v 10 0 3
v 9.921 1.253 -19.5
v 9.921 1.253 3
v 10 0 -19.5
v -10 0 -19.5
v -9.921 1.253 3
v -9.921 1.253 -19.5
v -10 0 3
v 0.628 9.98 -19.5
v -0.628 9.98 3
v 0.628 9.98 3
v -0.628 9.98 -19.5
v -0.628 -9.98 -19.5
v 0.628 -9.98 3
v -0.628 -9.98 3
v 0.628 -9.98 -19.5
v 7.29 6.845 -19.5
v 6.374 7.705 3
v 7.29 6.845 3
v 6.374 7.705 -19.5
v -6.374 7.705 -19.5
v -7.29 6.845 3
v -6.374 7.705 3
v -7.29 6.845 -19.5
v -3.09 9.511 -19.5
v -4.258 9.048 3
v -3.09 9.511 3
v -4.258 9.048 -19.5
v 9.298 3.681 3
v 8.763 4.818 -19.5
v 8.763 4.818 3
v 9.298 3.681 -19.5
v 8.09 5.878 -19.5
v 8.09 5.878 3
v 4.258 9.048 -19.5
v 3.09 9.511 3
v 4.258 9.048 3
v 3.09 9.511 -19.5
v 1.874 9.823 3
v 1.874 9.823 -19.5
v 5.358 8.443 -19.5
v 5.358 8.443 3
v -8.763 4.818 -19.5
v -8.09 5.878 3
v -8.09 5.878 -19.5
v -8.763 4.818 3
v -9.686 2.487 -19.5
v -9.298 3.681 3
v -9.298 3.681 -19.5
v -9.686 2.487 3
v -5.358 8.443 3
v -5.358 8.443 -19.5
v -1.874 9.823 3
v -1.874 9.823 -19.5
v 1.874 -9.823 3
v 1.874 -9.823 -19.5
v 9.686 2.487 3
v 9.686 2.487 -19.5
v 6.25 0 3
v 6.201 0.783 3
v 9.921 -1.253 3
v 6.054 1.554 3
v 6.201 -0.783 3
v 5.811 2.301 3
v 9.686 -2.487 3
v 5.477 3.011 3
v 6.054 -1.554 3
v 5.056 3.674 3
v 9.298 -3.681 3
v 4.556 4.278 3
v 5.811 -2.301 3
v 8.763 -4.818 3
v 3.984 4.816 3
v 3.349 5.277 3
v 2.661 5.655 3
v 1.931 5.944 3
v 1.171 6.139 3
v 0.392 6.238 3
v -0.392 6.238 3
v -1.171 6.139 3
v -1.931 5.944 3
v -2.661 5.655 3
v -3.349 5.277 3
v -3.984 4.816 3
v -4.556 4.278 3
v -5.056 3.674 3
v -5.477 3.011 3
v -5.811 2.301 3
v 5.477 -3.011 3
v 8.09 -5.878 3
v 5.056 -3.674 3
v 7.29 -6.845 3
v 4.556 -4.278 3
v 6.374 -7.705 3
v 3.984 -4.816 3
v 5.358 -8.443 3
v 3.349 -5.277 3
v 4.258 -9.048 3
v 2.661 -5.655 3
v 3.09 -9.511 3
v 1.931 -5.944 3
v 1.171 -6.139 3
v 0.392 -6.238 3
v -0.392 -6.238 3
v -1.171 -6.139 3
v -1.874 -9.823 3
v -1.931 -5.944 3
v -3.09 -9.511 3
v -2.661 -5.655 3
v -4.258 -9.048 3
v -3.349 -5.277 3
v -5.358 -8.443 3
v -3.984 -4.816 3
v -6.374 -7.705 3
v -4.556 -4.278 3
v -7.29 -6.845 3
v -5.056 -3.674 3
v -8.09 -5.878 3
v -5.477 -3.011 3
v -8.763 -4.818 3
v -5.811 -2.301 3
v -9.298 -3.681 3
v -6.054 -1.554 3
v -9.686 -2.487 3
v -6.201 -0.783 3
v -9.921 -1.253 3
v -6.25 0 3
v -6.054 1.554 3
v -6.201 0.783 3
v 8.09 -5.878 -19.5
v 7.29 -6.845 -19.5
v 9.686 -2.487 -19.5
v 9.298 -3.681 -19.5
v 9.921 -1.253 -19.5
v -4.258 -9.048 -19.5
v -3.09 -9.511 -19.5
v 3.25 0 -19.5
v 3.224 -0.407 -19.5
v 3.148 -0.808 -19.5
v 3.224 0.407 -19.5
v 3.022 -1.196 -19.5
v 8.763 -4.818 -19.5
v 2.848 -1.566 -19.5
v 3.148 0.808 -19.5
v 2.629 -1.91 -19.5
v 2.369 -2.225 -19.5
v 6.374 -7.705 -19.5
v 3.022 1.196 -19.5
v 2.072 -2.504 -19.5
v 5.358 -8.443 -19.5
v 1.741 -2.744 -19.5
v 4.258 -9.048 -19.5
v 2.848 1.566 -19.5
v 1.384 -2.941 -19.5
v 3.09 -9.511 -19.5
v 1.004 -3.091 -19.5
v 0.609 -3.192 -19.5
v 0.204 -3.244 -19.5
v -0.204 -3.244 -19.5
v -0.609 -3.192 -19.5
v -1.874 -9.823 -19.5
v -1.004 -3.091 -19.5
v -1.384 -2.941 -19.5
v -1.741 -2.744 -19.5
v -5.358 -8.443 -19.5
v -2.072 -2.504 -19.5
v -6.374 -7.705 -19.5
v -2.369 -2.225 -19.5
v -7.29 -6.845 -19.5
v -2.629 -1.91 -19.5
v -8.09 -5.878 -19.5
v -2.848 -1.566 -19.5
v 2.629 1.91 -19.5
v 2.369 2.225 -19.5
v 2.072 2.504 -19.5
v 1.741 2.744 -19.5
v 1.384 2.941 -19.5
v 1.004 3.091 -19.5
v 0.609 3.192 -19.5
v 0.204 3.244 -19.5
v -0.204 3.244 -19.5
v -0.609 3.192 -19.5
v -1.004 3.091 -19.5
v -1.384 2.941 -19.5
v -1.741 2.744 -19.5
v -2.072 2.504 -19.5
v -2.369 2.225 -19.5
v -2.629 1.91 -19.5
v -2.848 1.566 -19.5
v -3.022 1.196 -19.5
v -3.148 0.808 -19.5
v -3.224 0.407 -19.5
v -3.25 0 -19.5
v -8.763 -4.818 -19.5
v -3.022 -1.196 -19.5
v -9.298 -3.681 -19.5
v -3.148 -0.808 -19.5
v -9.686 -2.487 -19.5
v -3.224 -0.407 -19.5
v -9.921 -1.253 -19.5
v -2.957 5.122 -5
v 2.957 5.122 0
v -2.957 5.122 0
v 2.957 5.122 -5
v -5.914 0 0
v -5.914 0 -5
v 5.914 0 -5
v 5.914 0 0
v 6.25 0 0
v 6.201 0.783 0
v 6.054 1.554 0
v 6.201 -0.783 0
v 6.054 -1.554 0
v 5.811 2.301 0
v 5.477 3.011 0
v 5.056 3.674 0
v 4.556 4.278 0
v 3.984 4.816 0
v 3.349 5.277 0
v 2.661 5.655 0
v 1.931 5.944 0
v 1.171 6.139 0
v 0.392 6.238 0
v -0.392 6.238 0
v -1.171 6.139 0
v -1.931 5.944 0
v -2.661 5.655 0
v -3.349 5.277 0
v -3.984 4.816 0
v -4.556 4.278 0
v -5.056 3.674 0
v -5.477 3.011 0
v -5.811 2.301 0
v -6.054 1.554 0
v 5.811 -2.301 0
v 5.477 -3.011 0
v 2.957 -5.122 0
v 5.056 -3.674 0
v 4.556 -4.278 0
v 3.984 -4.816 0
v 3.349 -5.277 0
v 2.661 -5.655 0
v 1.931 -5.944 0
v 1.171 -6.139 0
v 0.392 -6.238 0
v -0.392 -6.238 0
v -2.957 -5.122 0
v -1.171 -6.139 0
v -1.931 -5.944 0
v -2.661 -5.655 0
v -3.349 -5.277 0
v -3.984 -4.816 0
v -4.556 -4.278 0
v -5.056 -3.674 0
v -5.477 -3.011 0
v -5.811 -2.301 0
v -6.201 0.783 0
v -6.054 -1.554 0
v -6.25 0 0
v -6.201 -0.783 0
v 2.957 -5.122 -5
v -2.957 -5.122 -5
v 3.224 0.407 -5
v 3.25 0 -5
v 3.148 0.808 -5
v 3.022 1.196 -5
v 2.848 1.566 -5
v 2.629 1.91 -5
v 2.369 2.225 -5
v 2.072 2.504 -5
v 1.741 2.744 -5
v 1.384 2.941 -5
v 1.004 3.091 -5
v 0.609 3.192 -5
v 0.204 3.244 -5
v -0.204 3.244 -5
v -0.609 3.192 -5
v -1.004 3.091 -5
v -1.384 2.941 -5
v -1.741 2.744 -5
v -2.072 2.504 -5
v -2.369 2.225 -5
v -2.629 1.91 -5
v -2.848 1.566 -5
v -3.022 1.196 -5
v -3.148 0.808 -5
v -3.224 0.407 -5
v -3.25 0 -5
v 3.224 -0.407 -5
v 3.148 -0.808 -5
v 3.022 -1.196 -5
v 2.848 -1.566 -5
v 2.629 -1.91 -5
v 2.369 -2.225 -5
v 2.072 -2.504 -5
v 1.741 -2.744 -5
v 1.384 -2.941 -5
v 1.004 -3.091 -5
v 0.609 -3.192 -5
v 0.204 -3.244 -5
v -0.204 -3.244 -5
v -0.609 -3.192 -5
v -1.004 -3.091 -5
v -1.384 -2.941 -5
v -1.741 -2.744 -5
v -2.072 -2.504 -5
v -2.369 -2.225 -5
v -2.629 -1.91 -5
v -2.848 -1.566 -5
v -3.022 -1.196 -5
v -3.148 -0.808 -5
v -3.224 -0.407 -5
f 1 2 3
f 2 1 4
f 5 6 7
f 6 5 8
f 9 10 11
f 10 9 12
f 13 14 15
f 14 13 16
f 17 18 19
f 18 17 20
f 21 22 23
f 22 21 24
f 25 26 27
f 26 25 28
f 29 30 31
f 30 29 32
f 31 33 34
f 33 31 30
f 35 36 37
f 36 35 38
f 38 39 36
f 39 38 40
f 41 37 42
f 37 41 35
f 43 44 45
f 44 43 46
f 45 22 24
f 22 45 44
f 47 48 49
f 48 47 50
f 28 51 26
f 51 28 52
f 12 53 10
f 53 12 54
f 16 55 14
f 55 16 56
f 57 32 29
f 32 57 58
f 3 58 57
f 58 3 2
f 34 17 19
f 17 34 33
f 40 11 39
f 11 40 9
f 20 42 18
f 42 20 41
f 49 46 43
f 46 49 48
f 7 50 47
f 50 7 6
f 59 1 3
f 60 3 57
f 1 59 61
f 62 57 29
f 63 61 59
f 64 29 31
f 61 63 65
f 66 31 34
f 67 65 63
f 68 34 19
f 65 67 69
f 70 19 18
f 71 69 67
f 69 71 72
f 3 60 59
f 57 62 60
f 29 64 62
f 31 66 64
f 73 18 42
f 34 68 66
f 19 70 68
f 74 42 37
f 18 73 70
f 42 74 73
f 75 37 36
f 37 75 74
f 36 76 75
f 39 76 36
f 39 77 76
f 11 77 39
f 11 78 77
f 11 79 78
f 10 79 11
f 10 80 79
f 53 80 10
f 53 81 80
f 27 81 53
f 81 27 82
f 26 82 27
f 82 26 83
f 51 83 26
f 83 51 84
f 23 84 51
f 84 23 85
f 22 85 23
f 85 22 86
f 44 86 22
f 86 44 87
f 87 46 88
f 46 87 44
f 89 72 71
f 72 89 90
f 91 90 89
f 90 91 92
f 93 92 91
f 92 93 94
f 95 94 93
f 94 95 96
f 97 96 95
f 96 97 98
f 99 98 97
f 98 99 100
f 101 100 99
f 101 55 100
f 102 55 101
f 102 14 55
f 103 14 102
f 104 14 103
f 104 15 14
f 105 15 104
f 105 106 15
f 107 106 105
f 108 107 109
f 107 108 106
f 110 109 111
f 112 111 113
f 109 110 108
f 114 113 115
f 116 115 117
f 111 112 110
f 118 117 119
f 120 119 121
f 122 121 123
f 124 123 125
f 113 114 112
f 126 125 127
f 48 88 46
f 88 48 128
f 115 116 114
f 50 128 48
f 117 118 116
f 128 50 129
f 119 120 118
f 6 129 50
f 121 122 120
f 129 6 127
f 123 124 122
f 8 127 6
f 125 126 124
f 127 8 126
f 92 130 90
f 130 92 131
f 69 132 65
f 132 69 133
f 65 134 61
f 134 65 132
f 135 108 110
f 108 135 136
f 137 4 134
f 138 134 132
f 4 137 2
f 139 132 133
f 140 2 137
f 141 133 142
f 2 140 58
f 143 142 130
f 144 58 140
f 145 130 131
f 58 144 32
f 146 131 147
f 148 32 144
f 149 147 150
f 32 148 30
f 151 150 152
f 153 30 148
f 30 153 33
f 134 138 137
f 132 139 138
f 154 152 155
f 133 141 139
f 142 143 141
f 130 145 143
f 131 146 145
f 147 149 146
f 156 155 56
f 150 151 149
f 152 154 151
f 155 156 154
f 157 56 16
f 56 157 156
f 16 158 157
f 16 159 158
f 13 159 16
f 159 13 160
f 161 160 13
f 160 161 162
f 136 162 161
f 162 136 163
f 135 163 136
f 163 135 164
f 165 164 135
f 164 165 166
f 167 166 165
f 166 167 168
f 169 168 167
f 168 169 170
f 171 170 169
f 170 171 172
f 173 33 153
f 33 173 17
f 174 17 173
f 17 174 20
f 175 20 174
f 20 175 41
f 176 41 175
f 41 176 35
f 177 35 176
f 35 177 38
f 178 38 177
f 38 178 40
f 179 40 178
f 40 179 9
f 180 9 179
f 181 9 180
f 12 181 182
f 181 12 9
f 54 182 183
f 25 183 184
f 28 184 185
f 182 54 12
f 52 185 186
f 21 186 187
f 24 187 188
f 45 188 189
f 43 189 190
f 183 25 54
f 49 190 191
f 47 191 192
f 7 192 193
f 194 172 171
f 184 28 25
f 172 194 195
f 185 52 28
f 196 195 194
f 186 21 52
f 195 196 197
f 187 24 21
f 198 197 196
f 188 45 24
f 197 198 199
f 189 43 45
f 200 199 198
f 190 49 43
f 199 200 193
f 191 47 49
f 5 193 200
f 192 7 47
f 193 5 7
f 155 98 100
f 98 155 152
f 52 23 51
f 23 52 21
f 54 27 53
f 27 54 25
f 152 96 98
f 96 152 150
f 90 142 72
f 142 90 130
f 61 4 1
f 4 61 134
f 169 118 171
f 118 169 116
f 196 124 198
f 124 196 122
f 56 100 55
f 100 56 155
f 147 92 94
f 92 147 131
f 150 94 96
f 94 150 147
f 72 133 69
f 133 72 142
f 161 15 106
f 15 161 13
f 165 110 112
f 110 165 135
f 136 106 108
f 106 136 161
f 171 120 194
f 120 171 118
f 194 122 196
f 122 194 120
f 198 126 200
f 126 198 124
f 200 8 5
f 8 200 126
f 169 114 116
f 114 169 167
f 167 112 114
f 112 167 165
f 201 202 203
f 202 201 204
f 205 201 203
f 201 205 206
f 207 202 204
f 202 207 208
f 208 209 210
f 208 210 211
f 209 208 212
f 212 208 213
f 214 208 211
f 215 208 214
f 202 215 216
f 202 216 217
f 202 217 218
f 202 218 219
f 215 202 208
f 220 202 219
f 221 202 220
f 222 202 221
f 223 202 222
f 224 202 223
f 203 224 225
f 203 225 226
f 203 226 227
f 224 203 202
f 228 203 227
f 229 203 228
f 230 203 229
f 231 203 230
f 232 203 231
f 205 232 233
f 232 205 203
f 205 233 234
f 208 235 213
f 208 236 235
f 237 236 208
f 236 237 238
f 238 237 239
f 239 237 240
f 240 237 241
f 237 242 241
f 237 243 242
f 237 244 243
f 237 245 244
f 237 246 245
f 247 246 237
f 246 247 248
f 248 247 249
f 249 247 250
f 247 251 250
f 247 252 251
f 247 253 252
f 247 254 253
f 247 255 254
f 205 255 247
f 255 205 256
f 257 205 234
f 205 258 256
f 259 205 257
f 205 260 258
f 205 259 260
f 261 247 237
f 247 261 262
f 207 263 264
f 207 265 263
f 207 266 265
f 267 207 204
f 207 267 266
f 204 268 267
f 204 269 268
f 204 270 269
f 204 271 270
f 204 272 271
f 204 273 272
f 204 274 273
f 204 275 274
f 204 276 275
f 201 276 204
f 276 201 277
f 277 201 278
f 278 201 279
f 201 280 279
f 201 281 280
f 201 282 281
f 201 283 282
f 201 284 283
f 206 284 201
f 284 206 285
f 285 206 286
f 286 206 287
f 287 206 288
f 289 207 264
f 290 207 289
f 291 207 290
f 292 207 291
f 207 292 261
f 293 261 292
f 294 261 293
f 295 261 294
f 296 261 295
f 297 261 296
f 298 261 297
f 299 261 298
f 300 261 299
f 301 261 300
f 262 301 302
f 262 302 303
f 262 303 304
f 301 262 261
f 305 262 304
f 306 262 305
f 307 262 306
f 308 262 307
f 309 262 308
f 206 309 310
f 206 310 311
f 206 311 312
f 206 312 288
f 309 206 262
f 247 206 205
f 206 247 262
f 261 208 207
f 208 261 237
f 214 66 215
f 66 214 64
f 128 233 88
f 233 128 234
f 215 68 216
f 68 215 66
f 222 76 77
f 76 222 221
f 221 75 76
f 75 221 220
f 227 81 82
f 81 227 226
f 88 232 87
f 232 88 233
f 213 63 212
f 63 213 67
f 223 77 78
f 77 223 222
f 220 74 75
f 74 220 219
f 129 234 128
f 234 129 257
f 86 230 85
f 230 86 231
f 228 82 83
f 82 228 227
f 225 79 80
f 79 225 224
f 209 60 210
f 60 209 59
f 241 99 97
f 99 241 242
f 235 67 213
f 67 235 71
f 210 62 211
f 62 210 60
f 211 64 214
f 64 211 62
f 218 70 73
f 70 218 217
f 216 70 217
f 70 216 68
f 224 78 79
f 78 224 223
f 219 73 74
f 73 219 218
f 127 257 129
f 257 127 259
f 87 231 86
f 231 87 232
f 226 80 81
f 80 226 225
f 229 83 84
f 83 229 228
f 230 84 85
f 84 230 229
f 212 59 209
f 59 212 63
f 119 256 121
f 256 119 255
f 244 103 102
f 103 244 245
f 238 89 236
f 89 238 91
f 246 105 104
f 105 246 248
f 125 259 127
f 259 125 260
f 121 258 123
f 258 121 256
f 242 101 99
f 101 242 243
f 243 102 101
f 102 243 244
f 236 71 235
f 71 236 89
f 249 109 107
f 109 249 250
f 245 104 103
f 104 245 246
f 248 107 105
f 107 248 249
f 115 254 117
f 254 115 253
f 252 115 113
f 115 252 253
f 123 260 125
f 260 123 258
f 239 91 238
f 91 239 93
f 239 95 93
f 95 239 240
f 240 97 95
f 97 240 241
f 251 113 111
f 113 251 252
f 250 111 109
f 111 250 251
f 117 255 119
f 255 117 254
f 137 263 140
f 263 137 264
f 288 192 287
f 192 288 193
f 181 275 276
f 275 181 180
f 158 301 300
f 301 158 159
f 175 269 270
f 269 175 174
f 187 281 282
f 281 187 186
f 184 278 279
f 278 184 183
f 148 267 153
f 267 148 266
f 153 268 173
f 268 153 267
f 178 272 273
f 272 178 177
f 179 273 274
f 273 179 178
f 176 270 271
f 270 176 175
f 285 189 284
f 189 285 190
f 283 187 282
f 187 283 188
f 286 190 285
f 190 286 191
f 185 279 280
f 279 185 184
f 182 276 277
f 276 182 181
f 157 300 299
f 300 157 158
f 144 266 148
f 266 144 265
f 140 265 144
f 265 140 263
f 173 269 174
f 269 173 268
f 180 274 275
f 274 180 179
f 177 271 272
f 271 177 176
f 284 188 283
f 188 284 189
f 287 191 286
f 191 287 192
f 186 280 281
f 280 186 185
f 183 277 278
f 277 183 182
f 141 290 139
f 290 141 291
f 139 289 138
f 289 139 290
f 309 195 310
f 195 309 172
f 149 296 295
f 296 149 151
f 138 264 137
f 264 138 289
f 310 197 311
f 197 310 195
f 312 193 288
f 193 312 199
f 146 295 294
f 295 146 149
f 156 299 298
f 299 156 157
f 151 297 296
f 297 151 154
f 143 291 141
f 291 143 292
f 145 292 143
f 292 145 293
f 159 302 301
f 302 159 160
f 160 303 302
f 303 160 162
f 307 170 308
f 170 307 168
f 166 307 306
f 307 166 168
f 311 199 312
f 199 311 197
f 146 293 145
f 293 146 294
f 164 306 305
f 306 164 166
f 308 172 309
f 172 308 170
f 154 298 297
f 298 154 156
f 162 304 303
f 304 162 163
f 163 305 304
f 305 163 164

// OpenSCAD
$fn = 50;


difference() {
	union() {
		translate(v = [0, 0, -19.5000000000]) {
			cylinder(h = 22.5000000000, r = 10.0000000000);
		}
		#translate(v = [0, 0, -21.0000000000]) {
			cylinder(h = 21, r = 2.8750000000);
		}
	}
	union() {
		translate(v = [0, 0, 0]) {
			rotate(a = [0, 0, 0]) {
				difference() {
					union() {
						translate(v = [0, 0, -5]) {
							linear_extrude(height = 5) {
								polygon(points = [[5.9142500000, 0.0000000000], [2.9571250000, 5.1218907443], [-2.9571250000, 5.1218907443], [-5.9142500000, 0.0000000000], [-2.9571250000, -5.1218907443], [2.9571250000, -5.1218907443]]);
							}
						}
					}
					union();
				}
			}
		}
		#cylinder(h = 3, r = 6.2500000000);
		#translate(v = [0, 0, -100.0000000000]) {
			cylinder(h = 200, r = 3.2500000000);
		}
	}
}
